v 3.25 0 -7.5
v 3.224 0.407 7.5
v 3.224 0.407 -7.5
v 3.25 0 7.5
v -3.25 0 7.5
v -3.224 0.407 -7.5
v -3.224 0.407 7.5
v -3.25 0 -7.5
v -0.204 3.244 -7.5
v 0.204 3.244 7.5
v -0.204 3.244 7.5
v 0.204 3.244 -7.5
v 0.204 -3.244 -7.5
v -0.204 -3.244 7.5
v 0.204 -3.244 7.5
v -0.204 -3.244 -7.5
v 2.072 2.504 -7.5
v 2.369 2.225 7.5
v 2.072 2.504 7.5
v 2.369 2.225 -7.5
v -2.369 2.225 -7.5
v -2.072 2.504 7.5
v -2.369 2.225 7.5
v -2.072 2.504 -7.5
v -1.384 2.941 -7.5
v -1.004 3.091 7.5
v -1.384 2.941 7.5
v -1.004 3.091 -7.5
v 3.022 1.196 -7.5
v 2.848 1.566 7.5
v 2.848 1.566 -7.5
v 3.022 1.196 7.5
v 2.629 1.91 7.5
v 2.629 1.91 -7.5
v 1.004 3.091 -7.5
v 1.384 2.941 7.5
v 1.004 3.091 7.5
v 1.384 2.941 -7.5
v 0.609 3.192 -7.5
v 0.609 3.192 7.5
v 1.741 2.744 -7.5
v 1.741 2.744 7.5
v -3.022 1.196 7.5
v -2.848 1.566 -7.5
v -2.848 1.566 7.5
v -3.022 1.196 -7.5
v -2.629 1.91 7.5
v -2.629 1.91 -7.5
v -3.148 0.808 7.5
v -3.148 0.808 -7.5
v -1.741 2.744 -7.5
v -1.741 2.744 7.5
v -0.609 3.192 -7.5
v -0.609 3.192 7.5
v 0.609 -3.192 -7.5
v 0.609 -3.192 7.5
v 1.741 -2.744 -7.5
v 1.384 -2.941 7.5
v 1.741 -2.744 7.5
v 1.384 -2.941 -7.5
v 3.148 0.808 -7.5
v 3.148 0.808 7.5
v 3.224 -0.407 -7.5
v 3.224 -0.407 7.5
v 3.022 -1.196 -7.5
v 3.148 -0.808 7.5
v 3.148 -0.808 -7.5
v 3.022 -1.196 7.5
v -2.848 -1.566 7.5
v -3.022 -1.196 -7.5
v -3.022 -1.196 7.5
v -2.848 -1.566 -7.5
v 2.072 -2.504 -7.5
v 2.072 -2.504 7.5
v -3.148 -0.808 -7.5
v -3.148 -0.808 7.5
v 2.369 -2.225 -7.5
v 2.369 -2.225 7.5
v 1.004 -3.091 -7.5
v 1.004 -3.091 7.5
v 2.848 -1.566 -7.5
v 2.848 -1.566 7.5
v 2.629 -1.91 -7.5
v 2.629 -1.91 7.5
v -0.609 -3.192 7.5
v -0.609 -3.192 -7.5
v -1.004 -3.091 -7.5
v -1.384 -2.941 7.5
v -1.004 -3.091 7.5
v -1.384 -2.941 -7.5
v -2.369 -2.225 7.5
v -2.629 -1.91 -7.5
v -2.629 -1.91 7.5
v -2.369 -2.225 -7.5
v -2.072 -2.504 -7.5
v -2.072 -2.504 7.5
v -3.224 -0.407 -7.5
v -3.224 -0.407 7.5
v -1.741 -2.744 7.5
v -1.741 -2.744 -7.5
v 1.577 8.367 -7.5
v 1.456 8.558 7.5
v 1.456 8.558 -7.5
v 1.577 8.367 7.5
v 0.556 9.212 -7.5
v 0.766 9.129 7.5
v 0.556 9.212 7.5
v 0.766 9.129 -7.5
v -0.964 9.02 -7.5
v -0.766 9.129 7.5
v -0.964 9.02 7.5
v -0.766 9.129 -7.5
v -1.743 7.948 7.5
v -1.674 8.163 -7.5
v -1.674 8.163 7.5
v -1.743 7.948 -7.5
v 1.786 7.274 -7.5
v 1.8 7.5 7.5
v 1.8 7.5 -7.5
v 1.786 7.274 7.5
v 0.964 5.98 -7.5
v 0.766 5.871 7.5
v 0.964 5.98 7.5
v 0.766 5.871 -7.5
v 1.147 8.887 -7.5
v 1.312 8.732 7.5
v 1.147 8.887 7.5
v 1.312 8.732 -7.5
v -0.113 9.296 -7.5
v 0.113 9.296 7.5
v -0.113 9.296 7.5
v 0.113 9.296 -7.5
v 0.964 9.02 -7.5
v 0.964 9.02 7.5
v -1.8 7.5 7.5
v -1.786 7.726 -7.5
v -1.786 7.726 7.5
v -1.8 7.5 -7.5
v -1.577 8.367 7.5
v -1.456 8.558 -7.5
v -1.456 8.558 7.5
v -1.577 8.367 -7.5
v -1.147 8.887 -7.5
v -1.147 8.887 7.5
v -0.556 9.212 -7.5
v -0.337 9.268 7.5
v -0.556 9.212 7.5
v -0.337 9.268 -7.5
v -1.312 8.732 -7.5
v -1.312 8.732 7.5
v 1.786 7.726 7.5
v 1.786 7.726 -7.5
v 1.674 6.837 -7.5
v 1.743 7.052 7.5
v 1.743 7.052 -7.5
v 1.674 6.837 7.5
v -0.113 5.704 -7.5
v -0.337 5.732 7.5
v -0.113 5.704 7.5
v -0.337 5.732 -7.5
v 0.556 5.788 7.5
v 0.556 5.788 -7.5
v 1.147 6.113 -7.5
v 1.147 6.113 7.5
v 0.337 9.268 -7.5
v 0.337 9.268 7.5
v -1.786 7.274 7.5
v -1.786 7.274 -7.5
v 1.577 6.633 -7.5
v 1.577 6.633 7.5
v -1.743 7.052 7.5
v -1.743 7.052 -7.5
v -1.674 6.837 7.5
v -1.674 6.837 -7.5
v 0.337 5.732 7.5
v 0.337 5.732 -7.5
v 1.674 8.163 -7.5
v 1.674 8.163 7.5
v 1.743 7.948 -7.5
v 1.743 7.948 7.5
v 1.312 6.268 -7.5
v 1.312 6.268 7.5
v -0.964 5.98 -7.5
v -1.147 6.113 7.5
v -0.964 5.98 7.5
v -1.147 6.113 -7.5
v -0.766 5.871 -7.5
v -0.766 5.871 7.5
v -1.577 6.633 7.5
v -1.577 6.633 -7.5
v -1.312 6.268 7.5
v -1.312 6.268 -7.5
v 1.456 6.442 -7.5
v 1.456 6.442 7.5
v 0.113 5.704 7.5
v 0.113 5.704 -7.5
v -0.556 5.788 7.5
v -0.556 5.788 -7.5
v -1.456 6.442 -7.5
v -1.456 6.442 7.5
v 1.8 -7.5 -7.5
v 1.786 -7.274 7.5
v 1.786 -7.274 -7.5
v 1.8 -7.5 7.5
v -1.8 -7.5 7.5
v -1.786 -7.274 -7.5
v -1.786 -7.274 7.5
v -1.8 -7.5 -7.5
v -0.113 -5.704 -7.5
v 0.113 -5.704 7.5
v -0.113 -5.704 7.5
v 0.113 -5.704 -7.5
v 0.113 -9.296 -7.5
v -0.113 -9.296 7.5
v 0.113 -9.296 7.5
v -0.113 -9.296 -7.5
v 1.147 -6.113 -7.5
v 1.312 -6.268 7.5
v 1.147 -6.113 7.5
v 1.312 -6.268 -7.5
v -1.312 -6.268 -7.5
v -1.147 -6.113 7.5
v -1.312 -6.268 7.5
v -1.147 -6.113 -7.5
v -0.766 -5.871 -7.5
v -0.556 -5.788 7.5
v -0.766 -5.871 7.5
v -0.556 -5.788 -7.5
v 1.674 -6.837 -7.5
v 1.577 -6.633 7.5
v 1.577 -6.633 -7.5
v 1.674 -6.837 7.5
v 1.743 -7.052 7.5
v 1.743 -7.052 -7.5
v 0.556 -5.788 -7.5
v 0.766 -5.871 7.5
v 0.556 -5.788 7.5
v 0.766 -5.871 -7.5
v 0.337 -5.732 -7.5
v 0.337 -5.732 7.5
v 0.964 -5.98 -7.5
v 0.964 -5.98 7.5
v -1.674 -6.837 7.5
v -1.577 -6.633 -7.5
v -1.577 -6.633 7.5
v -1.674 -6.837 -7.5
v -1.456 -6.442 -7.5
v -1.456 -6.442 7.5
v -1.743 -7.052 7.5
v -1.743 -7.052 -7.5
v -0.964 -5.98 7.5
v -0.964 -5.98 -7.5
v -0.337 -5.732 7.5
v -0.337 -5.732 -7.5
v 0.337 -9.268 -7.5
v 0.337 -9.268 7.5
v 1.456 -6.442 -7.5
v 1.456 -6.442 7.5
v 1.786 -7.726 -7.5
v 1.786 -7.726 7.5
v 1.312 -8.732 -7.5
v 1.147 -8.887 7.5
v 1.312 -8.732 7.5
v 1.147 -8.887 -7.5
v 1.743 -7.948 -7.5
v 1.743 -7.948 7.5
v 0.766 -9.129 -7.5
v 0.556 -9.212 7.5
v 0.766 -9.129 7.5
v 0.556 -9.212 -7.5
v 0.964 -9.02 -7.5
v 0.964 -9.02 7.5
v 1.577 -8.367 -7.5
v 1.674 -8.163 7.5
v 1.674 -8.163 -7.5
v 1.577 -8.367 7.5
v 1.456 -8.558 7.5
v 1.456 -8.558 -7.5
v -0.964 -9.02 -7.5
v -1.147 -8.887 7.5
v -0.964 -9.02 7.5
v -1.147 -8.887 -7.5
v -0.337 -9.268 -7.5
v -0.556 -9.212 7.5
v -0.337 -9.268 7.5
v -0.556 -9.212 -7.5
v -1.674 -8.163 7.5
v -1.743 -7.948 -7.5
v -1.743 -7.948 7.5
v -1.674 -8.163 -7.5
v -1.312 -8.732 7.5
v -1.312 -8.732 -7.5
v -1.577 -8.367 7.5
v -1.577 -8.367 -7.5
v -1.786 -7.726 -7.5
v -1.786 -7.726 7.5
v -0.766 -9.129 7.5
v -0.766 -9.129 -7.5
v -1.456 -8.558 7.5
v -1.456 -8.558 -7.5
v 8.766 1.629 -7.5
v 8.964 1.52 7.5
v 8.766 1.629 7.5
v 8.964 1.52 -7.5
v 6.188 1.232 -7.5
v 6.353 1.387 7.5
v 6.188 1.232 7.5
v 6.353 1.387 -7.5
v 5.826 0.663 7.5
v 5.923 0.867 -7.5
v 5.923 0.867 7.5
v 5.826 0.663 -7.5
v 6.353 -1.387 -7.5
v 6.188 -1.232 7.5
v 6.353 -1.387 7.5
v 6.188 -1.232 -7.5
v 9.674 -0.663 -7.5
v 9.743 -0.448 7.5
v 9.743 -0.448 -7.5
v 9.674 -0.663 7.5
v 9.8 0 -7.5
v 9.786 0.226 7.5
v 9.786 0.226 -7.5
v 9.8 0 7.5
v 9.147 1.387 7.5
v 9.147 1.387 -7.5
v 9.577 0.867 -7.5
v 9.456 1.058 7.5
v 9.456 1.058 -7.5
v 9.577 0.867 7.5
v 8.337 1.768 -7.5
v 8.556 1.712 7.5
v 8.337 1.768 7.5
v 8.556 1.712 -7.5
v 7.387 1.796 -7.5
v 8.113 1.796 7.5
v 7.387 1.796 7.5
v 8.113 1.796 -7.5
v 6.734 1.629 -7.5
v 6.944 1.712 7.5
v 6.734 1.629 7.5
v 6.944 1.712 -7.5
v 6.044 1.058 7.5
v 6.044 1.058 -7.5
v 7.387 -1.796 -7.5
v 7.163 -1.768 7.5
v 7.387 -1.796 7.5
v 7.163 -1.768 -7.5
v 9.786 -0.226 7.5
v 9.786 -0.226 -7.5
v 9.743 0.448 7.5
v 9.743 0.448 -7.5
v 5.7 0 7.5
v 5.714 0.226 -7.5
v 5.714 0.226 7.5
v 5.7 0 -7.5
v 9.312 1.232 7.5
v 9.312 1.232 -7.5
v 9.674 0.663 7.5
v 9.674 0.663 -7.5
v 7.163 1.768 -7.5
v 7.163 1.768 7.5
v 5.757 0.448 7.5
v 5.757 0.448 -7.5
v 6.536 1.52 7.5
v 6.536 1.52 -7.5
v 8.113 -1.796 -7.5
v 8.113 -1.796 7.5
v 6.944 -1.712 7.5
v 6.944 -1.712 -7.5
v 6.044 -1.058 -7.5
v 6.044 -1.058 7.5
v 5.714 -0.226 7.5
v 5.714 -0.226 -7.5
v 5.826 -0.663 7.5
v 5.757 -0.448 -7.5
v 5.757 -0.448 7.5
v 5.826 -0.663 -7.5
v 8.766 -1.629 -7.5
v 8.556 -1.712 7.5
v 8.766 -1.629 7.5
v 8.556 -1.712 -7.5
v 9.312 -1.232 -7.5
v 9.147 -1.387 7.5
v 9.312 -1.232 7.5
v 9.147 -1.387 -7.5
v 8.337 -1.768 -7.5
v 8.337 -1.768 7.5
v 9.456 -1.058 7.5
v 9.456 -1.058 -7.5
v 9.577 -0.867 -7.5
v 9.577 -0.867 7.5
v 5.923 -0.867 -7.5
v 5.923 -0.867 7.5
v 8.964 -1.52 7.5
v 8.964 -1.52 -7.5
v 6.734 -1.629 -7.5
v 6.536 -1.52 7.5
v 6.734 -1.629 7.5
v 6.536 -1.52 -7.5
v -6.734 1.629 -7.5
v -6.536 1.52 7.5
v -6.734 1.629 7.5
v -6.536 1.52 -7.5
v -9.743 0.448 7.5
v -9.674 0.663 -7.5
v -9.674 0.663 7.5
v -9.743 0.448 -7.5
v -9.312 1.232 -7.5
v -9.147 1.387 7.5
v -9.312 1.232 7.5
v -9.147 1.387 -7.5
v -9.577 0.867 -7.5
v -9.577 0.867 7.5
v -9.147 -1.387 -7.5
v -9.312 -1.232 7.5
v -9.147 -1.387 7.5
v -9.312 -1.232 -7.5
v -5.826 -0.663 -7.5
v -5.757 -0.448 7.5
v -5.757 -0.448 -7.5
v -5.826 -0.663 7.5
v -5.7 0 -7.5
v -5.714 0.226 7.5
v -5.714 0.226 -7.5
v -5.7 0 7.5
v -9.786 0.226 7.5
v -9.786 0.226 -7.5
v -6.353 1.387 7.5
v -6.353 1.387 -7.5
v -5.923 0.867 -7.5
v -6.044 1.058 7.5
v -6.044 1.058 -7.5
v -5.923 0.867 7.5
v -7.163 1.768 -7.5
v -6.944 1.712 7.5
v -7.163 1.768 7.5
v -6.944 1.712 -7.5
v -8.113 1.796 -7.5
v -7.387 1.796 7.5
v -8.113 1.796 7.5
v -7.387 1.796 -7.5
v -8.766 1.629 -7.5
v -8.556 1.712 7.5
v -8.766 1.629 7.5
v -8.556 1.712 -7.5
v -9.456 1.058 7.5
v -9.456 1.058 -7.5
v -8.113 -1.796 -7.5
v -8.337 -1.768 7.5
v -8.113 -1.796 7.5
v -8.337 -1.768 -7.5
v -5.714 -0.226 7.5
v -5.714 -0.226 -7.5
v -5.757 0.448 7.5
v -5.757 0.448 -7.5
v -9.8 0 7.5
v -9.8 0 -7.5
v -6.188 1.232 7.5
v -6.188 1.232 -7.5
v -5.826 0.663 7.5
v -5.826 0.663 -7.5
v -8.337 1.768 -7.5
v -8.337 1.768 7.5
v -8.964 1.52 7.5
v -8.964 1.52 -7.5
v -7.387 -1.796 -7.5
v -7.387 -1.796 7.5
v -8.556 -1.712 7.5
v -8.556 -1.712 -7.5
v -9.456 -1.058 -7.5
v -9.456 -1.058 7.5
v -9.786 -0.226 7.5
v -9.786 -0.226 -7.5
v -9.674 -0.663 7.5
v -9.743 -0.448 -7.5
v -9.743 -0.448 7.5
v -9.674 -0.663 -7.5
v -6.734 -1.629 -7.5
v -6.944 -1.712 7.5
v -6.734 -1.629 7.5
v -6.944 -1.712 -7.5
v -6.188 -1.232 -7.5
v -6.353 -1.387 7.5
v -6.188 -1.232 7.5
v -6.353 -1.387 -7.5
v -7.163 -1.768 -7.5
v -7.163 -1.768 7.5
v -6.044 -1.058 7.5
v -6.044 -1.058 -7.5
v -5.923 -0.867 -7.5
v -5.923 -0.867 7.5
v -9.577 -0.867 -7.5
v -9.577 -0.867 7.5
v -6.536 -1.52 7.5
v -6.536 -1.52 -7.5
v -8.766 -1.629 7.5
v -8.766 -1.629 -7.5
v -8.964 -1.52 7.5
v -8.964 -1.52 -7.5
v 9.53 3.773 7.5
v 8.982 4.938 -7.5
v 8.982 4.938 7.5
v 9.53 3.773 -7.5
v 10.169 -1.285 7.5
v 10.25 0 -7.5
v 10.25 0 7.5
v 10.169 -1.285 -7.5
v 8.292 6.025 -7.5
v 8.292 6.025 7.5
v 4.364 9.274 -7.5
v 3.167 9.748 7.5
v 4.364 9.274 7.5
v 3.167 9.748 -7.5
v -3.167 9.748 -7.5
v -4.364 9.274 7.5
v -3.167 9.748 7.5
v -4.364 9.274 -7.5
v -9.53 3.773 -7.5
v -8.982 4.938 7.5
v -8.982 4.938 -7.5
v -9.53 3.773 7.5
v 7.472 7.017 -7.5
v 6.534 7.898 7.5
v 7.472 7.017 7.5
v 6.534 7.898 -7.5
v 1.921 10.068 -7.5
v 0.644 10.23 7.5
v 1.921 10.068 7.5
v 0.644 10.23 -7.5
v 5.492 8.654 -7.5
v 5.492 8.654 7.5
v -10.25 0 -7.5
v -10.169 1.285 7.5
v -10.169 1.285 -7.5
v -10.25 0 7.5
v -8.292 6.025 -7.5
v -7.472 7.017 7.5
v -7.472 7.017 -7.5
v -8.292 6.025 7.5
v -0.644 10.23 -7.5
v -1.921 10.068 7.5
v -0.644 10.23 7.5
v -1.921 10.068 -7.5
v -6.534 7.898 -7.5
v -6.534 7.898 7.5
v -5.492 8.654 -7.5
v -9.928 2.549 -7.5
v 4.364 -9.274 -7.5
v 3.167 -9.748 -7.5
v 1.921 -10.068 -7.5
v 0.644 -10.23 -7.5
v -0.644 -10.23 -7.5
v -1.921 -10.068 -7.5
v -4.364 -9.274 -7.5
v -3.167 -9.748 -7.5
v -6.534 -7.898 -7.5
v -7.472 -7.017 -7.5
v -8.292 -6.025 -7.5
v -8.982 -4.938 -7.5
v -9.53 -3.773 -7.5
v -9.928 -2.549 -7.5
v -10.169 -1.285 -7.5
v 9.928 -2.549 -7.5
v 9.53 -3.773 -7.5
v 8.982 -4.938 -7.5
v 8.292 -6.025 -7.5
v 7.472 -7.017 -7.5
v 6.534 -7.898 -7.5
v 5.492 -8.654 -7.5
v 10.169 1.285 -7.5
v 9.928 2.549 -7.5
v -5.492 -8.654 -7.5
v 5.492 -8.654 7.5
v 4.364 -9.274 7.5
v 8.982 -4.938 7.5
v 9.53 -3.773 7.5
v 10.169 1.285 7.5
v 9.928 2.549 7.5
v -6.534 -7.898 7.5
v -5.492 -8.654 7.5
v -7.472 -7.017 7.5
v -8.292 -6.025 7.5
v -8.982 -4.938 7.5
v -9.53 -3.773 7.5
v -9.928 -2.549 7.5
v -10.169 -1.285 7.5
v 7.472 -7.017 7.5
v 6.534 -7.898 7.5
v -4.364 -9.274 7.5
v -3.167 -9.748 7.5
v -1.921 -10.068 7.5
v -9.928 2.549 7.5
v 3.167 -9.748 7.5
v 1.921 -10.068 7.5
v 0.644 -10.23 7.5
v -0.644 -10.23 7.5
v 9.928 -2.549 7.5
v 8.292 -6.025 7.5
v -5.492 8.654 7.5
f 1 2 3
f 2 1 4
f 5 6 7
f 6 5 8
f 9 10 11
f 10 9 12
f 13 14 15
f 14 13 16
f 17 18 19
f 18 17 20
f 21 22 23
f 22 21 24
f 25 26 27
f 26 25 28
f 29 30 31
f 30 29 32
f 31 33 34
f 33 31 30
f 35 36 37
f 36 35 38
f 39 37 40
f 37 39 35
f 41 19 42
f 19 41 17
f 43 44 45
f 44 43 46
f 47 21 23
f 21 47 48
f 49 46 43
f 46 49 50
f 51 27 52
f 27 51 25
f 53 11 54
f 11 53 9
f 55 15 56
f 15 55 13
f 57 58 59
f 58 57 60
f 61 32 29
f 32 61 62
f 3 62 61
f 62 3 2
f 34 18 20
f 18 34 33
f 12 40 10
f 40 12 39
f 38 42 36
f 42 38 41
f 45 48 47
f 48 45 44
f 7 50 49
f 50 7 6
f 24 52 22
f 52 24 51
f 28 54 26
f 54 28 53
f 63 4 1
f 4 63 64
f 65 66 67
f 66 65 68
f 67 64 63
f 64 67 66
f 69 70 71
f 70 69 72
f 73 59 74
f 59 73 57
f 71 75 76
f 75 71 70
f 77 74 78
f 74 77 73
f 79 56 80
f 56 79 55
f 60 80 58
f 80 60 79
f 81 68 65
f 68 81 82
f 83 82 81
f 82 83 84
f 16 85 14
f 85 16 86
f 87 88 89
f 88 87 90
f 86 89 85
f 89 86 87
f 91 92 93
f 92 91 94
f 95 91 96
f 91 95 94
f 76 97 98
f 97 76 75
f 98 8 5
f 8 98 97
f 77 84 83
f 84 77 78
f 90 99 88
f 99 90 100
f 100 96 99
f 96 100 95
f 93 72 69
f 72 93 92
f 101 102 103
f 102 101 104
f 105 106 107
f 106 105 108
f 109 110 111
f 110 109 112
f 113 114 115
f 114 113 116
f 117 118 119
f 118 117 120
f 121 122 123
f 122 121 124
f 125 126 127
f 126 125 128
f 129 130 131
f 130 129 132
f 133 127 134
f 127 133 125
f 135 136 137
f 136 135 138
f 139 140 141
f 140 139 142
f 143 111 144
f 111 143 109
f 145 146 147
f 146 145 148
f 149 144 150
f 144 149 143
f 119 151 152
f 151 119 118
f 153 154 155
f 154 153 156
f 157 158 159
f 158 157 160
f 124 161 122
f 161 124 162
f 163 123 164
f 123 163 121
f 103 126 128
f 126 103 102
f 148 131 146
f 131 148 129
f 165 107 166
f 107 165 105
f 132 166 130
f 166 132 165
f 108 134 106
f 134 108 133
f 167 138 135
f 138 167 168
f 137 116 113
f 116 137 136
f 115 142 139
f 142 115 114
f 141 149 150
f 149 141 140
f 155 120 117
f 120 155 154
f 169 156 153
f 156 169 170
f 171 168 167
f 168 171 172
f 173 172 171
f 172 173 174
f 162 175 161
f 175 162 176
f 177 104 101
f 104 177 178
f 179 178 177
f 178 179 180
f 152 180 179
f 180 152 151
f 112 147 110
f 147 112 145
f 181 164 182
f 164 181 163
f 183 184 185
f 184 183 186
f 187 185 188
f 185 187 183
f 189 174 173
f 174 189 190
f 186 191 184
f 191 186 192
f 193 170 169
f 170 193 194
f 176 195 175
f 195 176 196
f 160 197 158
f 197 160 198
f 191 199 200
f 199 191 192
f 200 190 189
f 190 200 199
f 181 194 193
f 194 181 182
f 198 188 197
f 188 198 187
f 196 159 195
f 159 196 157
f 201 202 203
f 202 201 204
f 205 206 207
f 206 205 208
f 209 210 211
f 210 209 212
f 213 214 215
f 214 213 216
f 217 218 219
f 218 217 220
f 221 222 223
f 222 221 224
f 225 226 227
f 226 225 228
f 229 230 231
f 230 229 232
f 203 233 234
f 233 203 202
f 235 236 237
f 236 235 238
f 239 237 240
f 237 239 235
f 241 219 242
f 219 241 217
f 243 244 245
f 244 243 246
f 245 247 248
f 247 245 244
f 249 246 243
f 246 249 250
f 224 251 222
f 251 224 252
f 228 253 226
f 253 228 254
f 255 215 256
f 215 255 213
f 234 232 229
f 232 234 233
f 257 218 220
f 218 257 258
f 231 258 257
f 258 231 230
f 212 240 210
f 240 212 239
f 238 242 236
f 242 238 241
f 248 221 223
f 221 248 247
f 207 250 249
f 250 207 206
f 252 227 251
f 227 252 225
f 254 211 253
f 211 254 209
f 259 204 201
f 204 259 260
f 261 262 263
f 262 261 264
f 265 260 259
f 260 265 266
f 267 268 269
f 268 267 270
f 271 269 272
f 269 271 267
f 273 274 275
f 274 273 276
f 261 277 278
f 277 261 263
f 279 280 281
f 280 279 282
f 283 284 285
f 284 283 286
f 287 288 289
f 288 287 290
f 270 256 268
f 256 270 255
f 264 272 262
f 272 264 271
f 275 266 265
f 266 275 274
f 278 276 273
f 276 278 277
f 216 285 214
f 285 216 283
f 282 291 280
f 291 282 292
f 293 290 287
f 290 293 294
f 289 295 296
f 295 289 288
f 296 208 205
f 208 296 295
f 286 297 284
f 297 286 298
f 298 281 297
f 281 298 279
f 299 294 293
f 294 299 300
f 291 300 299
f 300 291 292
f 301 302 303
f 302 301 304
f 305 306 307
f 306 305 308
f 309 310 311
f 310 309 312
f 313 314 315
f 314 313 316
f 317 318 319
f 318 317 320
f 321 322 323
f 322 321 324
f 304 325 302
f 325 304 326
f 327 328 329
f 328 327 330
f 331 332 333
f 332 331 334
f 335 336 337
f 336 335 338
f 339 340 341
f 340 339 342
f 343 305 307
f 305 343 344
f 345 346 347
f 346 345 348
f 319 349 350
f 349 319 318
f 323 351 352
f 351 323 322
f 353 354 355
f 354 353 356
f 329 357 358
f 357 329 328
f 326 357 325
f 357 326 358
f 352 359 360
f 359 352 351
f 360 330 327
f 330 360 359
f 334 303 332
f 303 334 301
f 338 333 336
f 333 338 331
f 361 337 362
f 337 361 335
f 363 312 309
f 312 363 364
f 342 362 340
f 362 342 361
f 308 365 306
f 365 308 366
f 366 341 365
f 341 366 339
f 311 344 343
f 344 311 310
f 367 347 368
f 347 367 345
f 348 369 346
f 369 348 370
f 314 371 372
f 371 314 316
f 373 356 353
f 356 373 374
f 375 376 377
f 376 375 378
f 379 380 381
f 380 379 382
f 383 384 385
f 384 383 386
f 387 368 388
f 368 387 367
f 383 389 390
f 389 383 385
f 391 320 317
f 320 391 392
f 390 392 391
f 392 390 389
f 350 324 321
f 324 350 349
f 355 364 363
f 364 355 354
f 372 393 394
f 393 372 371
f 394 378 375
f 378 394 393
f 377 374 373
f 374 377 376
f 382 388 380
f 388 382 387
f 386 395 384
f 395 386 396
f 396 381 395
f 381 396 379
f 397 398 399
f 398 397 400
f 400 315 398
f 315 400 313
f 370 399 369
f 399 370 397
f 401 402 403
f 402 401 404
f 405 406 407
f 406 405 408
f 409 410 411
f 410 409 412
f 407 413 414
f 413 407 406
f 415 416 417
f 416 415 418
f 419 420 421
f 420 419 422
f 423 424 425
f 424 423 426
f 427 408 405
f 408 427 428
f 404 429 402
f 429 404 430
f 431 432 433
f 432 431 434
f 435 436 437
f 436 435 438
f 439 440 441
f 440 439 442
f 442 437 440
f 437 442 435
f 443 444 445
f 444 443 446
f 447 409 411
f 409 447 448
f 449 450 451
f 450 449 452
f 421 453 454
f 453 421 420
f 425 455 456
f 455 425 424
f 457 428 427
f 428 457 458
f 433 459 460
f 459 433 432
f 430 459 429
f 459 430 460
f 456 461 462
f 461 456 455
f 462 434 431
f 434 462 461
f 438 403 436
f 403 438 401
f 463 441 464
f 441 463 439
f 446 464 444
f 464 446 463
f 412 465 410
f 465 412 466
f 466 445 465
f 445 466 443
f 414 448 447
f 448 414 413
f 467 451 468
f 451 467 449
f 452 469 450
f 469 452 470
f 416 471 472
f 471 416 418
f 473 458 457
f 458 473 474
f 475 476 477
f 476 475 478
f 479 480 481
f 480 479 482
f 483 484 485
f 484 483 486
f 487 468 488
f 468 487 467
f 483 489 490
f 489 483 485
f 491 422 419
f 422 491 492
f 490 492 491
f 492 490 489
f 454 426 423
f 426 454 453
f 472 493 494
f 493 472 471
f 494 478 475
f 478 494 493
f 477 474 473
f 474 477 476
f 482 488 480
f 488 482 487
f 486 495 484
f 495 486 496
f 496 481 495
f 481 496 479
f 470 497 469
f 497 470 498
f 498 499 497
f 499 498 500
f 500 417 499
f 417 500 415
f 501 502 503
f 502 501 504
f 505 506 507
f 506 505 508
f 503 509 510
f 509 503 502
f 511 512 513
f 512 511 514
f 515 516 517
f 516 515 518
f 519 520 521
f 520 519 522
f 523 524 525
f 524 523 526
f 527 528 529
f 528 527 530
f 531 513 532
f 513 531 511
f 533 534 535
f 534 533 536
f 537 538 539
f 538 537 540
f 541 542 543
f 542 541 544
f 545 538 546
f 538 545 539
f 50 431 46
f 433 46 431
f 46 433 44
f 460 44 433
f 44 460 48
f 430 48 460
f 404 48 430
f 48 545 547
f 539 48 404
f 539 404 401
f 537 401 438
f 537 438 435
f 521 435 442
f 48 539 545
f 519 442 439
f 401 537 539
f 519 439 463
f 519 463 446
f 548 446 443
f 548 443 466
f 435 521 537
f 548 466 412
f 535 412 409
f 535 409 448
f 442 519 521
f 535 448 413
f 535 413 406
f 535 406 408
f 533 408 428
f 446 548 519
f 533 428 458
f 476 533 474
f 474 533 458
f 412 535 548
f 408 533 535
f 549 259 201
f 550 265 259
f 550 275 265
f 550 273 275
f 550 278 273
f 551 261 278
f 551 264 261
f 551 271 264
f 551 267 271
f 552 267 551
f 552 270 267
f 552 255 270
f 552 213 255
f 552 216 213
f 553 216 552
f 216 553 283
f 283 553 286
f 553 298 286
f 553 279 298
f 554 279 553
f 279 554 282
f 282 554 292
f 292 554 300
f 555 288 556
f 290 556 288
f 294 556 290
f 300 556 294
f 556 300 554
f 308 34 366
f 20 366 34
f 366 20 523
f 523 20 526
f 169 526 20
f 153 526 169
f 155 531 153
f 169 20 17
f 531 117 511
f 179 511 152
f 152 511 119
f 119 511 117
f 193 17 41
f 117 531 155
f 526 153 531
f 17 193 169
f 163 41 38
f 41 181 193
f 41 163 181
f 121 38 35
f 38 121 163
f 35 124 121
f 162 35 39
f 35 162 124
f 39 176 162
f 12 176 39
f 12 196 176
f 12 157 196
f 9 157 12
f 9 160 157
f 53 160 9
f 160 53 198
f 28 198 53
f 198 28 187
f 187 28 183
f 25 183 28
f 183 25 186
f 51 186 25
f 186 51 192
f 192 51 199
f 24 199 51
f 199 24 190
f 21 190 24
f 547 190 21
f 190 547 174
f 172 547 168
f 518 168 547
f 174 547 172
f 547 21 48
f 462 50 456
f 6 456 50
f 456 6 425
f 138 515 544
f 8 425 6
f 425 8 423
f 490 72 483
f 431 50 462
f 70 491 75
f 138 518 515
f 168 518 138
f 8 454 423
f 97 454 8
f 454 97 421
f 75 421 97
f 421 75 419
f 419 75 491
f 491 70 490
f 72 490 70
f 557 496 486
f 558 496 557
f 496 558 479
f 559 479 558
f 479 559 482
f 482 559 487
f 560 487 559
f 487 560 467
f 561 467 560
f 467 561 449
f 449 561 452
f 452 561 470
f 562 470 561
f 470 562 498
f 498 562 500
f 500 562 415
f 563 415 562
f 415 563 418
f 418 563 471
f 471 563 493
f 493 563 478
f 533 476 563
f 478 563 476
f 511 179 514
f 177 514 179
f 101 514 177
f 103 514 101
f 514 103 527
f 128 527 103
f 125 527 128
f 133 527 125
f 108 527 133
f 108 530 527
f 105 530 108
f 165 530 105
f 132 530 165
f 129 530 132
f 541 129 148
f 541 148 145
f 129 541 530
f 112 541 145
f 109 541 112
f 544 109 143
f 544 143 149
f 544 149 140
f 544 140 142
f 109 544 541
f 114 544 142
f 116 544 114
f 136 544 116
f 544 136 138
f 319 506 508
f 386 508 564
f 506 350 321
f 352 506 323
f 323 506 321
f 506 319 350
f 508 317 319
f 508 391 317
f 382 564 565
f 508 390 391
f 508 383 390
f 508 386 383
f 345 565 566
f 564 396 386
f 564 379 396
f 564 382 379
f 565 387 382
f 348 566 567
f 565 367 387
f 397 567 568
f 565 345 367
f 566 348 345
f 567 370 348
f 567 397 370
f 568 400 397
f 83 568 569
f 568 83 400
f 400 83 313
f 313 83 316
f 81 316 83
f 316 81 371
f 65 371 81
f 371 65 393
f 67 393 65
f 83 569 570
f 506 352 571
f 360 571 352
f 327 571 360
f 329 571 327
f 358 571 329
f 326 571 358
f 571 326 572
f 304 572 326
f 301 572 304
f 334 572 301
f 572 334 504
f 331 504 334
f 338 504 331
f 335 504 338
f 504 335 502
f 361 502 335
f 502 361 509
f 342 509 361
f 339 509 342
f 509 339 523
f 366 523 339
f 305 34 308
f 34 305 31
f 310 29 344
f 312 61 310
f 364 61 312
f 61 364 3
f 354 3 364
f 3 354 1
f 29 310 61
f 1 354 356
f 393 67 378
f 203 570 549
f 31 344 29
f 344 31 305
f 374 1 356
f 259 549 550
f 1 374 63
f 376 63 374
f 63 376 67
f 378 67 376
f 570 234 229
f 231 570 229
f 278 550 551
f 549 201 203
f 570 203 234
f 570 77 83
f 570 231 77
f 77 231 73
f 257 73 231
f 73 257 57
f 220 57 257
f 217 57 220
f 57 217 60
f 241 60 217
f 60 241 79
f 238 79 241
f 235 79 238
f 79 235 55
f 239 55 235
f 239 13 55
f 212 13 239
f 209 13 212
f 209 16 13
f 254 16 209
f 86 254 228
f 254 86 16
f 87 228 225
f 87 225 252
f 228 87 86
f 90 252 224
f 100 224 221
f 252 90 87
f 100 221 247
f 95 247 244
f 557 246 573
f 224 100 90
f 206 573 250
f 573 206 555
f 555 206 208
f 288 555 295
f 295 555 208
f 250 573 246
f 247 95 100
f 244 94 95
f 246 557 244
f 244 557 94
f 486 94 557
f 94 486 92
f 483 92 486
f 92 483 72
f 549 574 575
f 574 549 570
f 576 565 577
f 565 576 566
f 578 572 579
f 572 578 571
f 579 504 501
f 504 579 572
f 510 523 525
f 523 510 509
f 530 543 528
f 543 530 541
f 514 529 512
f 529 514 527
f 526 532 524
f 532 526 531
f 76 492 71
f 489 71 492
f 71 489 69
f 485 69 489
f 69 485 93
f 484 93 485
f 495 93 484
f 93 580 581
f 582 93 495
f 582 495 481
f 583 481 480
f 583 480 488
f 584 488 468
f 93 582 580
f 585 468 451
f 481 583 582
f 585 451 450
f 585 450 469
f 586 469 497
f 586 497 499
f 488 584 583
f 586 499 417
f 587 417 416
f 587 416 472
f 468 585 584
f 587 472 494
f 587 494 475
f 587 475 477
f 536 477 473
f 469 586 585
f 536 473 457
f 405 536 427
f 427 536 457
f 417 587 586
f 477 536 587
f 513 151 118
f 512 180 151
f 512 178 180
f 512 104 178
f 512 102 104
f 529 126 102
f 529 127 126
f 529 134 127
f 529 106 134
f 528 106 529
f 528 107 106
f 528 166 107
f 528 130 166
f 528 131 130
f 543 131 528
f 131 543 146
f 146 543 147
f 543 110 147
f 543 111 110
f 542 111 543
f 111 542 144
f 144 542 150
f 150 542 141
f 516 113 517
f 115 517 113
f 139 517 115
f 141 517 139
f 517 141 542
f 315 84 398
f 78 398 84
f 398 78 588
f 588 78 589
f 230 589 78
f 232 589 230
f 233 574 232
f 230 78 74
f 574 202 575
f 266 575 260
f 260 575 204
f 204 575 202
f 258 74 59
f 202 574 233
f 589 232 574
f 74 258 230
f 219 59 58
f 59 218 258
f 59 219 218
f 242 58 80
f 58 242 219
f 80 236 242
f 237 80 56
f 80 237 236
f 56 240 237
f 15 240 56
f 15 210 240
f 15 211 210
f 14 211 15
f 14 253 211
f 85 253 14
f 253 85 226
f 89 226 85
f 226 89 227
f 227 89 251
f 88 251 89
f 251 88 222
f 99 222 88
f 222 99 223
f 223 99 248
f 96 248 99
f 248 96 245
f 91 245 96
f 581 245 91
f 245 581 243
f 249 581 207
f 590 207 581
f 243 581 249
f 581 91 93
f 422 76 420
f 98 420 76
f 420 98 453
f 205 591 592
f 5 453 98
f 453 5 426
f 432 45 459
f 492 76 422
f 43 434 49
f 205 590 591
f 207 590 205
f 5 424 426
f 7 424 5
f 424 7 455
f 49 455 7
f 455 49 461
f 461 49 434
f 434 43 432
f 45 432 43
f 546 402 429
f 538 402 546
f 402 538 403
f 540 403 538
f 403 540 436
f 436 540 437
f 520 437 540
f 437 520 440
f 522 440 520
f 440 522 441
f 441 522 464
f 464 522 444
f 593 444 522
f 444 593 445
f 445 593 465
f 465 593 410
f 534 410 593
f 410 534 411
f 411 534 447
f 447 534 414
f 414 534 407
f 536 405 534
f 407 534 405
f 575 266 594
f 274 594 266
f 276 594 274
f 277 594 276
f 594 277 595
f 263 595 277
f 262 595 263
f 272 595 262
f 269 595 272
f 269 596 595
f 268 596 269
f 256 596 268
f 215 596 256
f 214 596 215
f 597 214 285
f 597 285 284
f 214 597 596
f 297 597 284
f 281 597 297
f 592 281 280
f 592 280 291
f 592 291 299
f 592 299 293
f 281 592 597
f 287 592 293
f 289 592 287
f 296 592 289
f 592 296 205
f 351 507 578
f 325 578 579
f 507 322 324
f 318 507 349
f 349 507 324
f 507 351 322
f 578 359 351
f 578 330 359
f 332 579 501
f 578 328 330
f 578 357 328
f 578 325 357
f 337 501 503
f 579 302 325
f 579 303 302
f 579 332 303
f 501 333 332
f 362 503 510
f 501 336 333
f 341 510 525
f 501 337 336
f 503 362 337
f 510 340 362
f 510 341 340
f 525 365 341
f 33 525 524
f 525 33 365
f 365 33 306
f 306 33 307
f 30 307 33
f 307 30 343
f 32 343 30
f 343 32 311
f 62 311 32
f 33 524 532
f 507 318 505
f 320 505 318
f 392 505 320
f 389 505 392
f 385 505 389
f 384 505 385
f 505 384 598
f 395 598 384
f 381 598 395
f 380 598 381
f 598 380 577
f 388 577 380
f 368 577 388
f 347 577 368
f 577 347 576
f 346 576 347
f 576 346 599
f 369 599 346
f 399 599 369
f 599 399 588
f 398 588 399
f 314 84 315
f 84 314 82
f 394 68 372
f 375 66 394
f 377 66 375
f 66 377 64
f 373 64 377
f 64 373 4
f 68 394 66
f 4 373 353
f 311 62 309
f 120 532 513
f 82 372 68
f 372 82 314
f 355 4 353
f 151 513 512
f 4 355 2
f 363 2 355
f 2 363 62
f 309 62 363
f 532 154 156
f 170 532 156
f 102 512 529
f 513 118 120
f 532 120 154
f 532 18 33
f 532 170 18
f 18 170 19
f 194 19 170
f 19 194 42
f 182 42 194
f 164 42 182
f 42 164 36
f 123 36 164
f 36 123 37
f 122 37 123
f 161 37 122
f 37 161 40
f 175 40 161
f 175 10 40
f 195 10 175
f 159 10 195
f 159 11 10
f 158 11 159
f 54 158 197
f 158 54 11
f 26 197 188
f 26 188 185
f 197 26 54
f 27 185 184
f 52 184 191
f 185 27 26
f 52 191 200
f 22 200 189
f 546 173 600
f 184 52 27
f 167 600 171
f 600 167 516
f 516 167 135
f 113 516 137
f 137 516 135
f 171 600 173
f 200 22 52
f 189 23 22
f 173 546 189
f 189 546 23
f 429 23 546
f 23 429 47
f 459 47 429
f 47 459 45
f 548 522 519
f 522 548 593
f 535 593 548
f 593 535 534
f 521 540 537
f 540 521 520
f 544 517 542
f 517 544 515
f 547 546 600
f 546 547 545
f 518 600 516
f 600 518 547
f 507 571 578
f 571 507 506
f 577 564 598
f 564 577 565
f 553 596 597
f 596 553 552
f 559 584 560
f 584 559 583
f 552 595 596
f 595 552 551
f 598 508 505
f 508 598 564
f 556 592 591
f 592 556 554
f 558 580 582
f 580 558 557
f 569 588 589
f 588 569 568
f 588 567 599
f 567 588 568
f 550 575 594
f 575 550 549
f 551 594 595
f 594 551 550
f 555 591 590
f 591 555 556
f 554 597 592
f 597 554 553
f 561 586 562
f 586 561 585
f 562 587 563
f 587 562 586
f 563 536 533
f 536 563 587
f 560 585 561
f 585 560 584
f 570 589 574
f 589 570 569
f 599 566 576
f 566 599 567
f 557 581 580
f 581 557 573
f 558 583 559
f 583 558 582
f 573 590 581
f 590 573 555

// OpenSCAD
$fn = 50;


difference() {
	union() {
		translate(v = [0, 0, -7.5000000000]) {
			rotate(a = [0, 0, 0]) {
				cylinder(h = 15, r = 10.2500000000);
			}
		}
	}
	union() {
		translate(v = [0, 0, -125.0000000000]) {
			rotate(a = [0, 0, 0]) {
				cylinder(h = 250, r = 3.2500000000);
			}
		}
		translate(v = [0, 7.5000000000, -125.0000000000]) {
			rotate(a = [0, 0, 0]) {
				cylinder(h = 250, r = 1.8000000000);
			}
		}
		translate(v = [0, -7.5000000000, -125.0000000000]) {
			rotate(a = [0, 0, 0]) {
				cylinder(h = 250, r = 1.8000000000);
			}
		}
		translate(v = [7.7500000000, 0, -125.0000000000]) {
			rotate(a = [0, 0, 0]) {
				hull() {
					translate(v = [0.2500000000, 0, 0]) {
						rotate(a = [0, 0, 0]) {
							translate(v = [0, 0, 0]) {
								rotate(a = [0, 0, 0]) {
									cylinder(h = 250, r = 1.8000000000);
								}
							}
						}
					}
					translate(v = [-0.2500000000, 0, 0]) {
						rotate(a = [0, 0, 0]) {
							translate(v = [0, 0, 0]) {
								rotate(a = [0, 0, 0]) {
									cylinder(h = 250, r = 1.8000000000);
								}
							}
						}
					}
				}
			}
		}
		translate(v = [-7.7500000000, 0, -125.0000000000]) {
			rotate(a = [0, 0, 0]) {
				hull() {
					translate(v = [0.2500000000, 0, 0]) {
						rotate(a = [0, 0, 0]) {
							translate(v = [0, 0, 0]) {
								rotate(a = [0, 0, 0]) {
									cylinder(h = 250, r = 1.8000000000);
								}
							}
						}
					}
					translate(v = [-0.2500000000, 0, 0]) {
						rotate(a = [0, 0, 0]) {
							translate(v = [0, 0, 0]) {
								rotate(a = [0, 0, 0]) {
									cylinder(h = 250, r = 1.8000000000);
								}
							}
						}
					}
				}
			}
		}
	}
}
